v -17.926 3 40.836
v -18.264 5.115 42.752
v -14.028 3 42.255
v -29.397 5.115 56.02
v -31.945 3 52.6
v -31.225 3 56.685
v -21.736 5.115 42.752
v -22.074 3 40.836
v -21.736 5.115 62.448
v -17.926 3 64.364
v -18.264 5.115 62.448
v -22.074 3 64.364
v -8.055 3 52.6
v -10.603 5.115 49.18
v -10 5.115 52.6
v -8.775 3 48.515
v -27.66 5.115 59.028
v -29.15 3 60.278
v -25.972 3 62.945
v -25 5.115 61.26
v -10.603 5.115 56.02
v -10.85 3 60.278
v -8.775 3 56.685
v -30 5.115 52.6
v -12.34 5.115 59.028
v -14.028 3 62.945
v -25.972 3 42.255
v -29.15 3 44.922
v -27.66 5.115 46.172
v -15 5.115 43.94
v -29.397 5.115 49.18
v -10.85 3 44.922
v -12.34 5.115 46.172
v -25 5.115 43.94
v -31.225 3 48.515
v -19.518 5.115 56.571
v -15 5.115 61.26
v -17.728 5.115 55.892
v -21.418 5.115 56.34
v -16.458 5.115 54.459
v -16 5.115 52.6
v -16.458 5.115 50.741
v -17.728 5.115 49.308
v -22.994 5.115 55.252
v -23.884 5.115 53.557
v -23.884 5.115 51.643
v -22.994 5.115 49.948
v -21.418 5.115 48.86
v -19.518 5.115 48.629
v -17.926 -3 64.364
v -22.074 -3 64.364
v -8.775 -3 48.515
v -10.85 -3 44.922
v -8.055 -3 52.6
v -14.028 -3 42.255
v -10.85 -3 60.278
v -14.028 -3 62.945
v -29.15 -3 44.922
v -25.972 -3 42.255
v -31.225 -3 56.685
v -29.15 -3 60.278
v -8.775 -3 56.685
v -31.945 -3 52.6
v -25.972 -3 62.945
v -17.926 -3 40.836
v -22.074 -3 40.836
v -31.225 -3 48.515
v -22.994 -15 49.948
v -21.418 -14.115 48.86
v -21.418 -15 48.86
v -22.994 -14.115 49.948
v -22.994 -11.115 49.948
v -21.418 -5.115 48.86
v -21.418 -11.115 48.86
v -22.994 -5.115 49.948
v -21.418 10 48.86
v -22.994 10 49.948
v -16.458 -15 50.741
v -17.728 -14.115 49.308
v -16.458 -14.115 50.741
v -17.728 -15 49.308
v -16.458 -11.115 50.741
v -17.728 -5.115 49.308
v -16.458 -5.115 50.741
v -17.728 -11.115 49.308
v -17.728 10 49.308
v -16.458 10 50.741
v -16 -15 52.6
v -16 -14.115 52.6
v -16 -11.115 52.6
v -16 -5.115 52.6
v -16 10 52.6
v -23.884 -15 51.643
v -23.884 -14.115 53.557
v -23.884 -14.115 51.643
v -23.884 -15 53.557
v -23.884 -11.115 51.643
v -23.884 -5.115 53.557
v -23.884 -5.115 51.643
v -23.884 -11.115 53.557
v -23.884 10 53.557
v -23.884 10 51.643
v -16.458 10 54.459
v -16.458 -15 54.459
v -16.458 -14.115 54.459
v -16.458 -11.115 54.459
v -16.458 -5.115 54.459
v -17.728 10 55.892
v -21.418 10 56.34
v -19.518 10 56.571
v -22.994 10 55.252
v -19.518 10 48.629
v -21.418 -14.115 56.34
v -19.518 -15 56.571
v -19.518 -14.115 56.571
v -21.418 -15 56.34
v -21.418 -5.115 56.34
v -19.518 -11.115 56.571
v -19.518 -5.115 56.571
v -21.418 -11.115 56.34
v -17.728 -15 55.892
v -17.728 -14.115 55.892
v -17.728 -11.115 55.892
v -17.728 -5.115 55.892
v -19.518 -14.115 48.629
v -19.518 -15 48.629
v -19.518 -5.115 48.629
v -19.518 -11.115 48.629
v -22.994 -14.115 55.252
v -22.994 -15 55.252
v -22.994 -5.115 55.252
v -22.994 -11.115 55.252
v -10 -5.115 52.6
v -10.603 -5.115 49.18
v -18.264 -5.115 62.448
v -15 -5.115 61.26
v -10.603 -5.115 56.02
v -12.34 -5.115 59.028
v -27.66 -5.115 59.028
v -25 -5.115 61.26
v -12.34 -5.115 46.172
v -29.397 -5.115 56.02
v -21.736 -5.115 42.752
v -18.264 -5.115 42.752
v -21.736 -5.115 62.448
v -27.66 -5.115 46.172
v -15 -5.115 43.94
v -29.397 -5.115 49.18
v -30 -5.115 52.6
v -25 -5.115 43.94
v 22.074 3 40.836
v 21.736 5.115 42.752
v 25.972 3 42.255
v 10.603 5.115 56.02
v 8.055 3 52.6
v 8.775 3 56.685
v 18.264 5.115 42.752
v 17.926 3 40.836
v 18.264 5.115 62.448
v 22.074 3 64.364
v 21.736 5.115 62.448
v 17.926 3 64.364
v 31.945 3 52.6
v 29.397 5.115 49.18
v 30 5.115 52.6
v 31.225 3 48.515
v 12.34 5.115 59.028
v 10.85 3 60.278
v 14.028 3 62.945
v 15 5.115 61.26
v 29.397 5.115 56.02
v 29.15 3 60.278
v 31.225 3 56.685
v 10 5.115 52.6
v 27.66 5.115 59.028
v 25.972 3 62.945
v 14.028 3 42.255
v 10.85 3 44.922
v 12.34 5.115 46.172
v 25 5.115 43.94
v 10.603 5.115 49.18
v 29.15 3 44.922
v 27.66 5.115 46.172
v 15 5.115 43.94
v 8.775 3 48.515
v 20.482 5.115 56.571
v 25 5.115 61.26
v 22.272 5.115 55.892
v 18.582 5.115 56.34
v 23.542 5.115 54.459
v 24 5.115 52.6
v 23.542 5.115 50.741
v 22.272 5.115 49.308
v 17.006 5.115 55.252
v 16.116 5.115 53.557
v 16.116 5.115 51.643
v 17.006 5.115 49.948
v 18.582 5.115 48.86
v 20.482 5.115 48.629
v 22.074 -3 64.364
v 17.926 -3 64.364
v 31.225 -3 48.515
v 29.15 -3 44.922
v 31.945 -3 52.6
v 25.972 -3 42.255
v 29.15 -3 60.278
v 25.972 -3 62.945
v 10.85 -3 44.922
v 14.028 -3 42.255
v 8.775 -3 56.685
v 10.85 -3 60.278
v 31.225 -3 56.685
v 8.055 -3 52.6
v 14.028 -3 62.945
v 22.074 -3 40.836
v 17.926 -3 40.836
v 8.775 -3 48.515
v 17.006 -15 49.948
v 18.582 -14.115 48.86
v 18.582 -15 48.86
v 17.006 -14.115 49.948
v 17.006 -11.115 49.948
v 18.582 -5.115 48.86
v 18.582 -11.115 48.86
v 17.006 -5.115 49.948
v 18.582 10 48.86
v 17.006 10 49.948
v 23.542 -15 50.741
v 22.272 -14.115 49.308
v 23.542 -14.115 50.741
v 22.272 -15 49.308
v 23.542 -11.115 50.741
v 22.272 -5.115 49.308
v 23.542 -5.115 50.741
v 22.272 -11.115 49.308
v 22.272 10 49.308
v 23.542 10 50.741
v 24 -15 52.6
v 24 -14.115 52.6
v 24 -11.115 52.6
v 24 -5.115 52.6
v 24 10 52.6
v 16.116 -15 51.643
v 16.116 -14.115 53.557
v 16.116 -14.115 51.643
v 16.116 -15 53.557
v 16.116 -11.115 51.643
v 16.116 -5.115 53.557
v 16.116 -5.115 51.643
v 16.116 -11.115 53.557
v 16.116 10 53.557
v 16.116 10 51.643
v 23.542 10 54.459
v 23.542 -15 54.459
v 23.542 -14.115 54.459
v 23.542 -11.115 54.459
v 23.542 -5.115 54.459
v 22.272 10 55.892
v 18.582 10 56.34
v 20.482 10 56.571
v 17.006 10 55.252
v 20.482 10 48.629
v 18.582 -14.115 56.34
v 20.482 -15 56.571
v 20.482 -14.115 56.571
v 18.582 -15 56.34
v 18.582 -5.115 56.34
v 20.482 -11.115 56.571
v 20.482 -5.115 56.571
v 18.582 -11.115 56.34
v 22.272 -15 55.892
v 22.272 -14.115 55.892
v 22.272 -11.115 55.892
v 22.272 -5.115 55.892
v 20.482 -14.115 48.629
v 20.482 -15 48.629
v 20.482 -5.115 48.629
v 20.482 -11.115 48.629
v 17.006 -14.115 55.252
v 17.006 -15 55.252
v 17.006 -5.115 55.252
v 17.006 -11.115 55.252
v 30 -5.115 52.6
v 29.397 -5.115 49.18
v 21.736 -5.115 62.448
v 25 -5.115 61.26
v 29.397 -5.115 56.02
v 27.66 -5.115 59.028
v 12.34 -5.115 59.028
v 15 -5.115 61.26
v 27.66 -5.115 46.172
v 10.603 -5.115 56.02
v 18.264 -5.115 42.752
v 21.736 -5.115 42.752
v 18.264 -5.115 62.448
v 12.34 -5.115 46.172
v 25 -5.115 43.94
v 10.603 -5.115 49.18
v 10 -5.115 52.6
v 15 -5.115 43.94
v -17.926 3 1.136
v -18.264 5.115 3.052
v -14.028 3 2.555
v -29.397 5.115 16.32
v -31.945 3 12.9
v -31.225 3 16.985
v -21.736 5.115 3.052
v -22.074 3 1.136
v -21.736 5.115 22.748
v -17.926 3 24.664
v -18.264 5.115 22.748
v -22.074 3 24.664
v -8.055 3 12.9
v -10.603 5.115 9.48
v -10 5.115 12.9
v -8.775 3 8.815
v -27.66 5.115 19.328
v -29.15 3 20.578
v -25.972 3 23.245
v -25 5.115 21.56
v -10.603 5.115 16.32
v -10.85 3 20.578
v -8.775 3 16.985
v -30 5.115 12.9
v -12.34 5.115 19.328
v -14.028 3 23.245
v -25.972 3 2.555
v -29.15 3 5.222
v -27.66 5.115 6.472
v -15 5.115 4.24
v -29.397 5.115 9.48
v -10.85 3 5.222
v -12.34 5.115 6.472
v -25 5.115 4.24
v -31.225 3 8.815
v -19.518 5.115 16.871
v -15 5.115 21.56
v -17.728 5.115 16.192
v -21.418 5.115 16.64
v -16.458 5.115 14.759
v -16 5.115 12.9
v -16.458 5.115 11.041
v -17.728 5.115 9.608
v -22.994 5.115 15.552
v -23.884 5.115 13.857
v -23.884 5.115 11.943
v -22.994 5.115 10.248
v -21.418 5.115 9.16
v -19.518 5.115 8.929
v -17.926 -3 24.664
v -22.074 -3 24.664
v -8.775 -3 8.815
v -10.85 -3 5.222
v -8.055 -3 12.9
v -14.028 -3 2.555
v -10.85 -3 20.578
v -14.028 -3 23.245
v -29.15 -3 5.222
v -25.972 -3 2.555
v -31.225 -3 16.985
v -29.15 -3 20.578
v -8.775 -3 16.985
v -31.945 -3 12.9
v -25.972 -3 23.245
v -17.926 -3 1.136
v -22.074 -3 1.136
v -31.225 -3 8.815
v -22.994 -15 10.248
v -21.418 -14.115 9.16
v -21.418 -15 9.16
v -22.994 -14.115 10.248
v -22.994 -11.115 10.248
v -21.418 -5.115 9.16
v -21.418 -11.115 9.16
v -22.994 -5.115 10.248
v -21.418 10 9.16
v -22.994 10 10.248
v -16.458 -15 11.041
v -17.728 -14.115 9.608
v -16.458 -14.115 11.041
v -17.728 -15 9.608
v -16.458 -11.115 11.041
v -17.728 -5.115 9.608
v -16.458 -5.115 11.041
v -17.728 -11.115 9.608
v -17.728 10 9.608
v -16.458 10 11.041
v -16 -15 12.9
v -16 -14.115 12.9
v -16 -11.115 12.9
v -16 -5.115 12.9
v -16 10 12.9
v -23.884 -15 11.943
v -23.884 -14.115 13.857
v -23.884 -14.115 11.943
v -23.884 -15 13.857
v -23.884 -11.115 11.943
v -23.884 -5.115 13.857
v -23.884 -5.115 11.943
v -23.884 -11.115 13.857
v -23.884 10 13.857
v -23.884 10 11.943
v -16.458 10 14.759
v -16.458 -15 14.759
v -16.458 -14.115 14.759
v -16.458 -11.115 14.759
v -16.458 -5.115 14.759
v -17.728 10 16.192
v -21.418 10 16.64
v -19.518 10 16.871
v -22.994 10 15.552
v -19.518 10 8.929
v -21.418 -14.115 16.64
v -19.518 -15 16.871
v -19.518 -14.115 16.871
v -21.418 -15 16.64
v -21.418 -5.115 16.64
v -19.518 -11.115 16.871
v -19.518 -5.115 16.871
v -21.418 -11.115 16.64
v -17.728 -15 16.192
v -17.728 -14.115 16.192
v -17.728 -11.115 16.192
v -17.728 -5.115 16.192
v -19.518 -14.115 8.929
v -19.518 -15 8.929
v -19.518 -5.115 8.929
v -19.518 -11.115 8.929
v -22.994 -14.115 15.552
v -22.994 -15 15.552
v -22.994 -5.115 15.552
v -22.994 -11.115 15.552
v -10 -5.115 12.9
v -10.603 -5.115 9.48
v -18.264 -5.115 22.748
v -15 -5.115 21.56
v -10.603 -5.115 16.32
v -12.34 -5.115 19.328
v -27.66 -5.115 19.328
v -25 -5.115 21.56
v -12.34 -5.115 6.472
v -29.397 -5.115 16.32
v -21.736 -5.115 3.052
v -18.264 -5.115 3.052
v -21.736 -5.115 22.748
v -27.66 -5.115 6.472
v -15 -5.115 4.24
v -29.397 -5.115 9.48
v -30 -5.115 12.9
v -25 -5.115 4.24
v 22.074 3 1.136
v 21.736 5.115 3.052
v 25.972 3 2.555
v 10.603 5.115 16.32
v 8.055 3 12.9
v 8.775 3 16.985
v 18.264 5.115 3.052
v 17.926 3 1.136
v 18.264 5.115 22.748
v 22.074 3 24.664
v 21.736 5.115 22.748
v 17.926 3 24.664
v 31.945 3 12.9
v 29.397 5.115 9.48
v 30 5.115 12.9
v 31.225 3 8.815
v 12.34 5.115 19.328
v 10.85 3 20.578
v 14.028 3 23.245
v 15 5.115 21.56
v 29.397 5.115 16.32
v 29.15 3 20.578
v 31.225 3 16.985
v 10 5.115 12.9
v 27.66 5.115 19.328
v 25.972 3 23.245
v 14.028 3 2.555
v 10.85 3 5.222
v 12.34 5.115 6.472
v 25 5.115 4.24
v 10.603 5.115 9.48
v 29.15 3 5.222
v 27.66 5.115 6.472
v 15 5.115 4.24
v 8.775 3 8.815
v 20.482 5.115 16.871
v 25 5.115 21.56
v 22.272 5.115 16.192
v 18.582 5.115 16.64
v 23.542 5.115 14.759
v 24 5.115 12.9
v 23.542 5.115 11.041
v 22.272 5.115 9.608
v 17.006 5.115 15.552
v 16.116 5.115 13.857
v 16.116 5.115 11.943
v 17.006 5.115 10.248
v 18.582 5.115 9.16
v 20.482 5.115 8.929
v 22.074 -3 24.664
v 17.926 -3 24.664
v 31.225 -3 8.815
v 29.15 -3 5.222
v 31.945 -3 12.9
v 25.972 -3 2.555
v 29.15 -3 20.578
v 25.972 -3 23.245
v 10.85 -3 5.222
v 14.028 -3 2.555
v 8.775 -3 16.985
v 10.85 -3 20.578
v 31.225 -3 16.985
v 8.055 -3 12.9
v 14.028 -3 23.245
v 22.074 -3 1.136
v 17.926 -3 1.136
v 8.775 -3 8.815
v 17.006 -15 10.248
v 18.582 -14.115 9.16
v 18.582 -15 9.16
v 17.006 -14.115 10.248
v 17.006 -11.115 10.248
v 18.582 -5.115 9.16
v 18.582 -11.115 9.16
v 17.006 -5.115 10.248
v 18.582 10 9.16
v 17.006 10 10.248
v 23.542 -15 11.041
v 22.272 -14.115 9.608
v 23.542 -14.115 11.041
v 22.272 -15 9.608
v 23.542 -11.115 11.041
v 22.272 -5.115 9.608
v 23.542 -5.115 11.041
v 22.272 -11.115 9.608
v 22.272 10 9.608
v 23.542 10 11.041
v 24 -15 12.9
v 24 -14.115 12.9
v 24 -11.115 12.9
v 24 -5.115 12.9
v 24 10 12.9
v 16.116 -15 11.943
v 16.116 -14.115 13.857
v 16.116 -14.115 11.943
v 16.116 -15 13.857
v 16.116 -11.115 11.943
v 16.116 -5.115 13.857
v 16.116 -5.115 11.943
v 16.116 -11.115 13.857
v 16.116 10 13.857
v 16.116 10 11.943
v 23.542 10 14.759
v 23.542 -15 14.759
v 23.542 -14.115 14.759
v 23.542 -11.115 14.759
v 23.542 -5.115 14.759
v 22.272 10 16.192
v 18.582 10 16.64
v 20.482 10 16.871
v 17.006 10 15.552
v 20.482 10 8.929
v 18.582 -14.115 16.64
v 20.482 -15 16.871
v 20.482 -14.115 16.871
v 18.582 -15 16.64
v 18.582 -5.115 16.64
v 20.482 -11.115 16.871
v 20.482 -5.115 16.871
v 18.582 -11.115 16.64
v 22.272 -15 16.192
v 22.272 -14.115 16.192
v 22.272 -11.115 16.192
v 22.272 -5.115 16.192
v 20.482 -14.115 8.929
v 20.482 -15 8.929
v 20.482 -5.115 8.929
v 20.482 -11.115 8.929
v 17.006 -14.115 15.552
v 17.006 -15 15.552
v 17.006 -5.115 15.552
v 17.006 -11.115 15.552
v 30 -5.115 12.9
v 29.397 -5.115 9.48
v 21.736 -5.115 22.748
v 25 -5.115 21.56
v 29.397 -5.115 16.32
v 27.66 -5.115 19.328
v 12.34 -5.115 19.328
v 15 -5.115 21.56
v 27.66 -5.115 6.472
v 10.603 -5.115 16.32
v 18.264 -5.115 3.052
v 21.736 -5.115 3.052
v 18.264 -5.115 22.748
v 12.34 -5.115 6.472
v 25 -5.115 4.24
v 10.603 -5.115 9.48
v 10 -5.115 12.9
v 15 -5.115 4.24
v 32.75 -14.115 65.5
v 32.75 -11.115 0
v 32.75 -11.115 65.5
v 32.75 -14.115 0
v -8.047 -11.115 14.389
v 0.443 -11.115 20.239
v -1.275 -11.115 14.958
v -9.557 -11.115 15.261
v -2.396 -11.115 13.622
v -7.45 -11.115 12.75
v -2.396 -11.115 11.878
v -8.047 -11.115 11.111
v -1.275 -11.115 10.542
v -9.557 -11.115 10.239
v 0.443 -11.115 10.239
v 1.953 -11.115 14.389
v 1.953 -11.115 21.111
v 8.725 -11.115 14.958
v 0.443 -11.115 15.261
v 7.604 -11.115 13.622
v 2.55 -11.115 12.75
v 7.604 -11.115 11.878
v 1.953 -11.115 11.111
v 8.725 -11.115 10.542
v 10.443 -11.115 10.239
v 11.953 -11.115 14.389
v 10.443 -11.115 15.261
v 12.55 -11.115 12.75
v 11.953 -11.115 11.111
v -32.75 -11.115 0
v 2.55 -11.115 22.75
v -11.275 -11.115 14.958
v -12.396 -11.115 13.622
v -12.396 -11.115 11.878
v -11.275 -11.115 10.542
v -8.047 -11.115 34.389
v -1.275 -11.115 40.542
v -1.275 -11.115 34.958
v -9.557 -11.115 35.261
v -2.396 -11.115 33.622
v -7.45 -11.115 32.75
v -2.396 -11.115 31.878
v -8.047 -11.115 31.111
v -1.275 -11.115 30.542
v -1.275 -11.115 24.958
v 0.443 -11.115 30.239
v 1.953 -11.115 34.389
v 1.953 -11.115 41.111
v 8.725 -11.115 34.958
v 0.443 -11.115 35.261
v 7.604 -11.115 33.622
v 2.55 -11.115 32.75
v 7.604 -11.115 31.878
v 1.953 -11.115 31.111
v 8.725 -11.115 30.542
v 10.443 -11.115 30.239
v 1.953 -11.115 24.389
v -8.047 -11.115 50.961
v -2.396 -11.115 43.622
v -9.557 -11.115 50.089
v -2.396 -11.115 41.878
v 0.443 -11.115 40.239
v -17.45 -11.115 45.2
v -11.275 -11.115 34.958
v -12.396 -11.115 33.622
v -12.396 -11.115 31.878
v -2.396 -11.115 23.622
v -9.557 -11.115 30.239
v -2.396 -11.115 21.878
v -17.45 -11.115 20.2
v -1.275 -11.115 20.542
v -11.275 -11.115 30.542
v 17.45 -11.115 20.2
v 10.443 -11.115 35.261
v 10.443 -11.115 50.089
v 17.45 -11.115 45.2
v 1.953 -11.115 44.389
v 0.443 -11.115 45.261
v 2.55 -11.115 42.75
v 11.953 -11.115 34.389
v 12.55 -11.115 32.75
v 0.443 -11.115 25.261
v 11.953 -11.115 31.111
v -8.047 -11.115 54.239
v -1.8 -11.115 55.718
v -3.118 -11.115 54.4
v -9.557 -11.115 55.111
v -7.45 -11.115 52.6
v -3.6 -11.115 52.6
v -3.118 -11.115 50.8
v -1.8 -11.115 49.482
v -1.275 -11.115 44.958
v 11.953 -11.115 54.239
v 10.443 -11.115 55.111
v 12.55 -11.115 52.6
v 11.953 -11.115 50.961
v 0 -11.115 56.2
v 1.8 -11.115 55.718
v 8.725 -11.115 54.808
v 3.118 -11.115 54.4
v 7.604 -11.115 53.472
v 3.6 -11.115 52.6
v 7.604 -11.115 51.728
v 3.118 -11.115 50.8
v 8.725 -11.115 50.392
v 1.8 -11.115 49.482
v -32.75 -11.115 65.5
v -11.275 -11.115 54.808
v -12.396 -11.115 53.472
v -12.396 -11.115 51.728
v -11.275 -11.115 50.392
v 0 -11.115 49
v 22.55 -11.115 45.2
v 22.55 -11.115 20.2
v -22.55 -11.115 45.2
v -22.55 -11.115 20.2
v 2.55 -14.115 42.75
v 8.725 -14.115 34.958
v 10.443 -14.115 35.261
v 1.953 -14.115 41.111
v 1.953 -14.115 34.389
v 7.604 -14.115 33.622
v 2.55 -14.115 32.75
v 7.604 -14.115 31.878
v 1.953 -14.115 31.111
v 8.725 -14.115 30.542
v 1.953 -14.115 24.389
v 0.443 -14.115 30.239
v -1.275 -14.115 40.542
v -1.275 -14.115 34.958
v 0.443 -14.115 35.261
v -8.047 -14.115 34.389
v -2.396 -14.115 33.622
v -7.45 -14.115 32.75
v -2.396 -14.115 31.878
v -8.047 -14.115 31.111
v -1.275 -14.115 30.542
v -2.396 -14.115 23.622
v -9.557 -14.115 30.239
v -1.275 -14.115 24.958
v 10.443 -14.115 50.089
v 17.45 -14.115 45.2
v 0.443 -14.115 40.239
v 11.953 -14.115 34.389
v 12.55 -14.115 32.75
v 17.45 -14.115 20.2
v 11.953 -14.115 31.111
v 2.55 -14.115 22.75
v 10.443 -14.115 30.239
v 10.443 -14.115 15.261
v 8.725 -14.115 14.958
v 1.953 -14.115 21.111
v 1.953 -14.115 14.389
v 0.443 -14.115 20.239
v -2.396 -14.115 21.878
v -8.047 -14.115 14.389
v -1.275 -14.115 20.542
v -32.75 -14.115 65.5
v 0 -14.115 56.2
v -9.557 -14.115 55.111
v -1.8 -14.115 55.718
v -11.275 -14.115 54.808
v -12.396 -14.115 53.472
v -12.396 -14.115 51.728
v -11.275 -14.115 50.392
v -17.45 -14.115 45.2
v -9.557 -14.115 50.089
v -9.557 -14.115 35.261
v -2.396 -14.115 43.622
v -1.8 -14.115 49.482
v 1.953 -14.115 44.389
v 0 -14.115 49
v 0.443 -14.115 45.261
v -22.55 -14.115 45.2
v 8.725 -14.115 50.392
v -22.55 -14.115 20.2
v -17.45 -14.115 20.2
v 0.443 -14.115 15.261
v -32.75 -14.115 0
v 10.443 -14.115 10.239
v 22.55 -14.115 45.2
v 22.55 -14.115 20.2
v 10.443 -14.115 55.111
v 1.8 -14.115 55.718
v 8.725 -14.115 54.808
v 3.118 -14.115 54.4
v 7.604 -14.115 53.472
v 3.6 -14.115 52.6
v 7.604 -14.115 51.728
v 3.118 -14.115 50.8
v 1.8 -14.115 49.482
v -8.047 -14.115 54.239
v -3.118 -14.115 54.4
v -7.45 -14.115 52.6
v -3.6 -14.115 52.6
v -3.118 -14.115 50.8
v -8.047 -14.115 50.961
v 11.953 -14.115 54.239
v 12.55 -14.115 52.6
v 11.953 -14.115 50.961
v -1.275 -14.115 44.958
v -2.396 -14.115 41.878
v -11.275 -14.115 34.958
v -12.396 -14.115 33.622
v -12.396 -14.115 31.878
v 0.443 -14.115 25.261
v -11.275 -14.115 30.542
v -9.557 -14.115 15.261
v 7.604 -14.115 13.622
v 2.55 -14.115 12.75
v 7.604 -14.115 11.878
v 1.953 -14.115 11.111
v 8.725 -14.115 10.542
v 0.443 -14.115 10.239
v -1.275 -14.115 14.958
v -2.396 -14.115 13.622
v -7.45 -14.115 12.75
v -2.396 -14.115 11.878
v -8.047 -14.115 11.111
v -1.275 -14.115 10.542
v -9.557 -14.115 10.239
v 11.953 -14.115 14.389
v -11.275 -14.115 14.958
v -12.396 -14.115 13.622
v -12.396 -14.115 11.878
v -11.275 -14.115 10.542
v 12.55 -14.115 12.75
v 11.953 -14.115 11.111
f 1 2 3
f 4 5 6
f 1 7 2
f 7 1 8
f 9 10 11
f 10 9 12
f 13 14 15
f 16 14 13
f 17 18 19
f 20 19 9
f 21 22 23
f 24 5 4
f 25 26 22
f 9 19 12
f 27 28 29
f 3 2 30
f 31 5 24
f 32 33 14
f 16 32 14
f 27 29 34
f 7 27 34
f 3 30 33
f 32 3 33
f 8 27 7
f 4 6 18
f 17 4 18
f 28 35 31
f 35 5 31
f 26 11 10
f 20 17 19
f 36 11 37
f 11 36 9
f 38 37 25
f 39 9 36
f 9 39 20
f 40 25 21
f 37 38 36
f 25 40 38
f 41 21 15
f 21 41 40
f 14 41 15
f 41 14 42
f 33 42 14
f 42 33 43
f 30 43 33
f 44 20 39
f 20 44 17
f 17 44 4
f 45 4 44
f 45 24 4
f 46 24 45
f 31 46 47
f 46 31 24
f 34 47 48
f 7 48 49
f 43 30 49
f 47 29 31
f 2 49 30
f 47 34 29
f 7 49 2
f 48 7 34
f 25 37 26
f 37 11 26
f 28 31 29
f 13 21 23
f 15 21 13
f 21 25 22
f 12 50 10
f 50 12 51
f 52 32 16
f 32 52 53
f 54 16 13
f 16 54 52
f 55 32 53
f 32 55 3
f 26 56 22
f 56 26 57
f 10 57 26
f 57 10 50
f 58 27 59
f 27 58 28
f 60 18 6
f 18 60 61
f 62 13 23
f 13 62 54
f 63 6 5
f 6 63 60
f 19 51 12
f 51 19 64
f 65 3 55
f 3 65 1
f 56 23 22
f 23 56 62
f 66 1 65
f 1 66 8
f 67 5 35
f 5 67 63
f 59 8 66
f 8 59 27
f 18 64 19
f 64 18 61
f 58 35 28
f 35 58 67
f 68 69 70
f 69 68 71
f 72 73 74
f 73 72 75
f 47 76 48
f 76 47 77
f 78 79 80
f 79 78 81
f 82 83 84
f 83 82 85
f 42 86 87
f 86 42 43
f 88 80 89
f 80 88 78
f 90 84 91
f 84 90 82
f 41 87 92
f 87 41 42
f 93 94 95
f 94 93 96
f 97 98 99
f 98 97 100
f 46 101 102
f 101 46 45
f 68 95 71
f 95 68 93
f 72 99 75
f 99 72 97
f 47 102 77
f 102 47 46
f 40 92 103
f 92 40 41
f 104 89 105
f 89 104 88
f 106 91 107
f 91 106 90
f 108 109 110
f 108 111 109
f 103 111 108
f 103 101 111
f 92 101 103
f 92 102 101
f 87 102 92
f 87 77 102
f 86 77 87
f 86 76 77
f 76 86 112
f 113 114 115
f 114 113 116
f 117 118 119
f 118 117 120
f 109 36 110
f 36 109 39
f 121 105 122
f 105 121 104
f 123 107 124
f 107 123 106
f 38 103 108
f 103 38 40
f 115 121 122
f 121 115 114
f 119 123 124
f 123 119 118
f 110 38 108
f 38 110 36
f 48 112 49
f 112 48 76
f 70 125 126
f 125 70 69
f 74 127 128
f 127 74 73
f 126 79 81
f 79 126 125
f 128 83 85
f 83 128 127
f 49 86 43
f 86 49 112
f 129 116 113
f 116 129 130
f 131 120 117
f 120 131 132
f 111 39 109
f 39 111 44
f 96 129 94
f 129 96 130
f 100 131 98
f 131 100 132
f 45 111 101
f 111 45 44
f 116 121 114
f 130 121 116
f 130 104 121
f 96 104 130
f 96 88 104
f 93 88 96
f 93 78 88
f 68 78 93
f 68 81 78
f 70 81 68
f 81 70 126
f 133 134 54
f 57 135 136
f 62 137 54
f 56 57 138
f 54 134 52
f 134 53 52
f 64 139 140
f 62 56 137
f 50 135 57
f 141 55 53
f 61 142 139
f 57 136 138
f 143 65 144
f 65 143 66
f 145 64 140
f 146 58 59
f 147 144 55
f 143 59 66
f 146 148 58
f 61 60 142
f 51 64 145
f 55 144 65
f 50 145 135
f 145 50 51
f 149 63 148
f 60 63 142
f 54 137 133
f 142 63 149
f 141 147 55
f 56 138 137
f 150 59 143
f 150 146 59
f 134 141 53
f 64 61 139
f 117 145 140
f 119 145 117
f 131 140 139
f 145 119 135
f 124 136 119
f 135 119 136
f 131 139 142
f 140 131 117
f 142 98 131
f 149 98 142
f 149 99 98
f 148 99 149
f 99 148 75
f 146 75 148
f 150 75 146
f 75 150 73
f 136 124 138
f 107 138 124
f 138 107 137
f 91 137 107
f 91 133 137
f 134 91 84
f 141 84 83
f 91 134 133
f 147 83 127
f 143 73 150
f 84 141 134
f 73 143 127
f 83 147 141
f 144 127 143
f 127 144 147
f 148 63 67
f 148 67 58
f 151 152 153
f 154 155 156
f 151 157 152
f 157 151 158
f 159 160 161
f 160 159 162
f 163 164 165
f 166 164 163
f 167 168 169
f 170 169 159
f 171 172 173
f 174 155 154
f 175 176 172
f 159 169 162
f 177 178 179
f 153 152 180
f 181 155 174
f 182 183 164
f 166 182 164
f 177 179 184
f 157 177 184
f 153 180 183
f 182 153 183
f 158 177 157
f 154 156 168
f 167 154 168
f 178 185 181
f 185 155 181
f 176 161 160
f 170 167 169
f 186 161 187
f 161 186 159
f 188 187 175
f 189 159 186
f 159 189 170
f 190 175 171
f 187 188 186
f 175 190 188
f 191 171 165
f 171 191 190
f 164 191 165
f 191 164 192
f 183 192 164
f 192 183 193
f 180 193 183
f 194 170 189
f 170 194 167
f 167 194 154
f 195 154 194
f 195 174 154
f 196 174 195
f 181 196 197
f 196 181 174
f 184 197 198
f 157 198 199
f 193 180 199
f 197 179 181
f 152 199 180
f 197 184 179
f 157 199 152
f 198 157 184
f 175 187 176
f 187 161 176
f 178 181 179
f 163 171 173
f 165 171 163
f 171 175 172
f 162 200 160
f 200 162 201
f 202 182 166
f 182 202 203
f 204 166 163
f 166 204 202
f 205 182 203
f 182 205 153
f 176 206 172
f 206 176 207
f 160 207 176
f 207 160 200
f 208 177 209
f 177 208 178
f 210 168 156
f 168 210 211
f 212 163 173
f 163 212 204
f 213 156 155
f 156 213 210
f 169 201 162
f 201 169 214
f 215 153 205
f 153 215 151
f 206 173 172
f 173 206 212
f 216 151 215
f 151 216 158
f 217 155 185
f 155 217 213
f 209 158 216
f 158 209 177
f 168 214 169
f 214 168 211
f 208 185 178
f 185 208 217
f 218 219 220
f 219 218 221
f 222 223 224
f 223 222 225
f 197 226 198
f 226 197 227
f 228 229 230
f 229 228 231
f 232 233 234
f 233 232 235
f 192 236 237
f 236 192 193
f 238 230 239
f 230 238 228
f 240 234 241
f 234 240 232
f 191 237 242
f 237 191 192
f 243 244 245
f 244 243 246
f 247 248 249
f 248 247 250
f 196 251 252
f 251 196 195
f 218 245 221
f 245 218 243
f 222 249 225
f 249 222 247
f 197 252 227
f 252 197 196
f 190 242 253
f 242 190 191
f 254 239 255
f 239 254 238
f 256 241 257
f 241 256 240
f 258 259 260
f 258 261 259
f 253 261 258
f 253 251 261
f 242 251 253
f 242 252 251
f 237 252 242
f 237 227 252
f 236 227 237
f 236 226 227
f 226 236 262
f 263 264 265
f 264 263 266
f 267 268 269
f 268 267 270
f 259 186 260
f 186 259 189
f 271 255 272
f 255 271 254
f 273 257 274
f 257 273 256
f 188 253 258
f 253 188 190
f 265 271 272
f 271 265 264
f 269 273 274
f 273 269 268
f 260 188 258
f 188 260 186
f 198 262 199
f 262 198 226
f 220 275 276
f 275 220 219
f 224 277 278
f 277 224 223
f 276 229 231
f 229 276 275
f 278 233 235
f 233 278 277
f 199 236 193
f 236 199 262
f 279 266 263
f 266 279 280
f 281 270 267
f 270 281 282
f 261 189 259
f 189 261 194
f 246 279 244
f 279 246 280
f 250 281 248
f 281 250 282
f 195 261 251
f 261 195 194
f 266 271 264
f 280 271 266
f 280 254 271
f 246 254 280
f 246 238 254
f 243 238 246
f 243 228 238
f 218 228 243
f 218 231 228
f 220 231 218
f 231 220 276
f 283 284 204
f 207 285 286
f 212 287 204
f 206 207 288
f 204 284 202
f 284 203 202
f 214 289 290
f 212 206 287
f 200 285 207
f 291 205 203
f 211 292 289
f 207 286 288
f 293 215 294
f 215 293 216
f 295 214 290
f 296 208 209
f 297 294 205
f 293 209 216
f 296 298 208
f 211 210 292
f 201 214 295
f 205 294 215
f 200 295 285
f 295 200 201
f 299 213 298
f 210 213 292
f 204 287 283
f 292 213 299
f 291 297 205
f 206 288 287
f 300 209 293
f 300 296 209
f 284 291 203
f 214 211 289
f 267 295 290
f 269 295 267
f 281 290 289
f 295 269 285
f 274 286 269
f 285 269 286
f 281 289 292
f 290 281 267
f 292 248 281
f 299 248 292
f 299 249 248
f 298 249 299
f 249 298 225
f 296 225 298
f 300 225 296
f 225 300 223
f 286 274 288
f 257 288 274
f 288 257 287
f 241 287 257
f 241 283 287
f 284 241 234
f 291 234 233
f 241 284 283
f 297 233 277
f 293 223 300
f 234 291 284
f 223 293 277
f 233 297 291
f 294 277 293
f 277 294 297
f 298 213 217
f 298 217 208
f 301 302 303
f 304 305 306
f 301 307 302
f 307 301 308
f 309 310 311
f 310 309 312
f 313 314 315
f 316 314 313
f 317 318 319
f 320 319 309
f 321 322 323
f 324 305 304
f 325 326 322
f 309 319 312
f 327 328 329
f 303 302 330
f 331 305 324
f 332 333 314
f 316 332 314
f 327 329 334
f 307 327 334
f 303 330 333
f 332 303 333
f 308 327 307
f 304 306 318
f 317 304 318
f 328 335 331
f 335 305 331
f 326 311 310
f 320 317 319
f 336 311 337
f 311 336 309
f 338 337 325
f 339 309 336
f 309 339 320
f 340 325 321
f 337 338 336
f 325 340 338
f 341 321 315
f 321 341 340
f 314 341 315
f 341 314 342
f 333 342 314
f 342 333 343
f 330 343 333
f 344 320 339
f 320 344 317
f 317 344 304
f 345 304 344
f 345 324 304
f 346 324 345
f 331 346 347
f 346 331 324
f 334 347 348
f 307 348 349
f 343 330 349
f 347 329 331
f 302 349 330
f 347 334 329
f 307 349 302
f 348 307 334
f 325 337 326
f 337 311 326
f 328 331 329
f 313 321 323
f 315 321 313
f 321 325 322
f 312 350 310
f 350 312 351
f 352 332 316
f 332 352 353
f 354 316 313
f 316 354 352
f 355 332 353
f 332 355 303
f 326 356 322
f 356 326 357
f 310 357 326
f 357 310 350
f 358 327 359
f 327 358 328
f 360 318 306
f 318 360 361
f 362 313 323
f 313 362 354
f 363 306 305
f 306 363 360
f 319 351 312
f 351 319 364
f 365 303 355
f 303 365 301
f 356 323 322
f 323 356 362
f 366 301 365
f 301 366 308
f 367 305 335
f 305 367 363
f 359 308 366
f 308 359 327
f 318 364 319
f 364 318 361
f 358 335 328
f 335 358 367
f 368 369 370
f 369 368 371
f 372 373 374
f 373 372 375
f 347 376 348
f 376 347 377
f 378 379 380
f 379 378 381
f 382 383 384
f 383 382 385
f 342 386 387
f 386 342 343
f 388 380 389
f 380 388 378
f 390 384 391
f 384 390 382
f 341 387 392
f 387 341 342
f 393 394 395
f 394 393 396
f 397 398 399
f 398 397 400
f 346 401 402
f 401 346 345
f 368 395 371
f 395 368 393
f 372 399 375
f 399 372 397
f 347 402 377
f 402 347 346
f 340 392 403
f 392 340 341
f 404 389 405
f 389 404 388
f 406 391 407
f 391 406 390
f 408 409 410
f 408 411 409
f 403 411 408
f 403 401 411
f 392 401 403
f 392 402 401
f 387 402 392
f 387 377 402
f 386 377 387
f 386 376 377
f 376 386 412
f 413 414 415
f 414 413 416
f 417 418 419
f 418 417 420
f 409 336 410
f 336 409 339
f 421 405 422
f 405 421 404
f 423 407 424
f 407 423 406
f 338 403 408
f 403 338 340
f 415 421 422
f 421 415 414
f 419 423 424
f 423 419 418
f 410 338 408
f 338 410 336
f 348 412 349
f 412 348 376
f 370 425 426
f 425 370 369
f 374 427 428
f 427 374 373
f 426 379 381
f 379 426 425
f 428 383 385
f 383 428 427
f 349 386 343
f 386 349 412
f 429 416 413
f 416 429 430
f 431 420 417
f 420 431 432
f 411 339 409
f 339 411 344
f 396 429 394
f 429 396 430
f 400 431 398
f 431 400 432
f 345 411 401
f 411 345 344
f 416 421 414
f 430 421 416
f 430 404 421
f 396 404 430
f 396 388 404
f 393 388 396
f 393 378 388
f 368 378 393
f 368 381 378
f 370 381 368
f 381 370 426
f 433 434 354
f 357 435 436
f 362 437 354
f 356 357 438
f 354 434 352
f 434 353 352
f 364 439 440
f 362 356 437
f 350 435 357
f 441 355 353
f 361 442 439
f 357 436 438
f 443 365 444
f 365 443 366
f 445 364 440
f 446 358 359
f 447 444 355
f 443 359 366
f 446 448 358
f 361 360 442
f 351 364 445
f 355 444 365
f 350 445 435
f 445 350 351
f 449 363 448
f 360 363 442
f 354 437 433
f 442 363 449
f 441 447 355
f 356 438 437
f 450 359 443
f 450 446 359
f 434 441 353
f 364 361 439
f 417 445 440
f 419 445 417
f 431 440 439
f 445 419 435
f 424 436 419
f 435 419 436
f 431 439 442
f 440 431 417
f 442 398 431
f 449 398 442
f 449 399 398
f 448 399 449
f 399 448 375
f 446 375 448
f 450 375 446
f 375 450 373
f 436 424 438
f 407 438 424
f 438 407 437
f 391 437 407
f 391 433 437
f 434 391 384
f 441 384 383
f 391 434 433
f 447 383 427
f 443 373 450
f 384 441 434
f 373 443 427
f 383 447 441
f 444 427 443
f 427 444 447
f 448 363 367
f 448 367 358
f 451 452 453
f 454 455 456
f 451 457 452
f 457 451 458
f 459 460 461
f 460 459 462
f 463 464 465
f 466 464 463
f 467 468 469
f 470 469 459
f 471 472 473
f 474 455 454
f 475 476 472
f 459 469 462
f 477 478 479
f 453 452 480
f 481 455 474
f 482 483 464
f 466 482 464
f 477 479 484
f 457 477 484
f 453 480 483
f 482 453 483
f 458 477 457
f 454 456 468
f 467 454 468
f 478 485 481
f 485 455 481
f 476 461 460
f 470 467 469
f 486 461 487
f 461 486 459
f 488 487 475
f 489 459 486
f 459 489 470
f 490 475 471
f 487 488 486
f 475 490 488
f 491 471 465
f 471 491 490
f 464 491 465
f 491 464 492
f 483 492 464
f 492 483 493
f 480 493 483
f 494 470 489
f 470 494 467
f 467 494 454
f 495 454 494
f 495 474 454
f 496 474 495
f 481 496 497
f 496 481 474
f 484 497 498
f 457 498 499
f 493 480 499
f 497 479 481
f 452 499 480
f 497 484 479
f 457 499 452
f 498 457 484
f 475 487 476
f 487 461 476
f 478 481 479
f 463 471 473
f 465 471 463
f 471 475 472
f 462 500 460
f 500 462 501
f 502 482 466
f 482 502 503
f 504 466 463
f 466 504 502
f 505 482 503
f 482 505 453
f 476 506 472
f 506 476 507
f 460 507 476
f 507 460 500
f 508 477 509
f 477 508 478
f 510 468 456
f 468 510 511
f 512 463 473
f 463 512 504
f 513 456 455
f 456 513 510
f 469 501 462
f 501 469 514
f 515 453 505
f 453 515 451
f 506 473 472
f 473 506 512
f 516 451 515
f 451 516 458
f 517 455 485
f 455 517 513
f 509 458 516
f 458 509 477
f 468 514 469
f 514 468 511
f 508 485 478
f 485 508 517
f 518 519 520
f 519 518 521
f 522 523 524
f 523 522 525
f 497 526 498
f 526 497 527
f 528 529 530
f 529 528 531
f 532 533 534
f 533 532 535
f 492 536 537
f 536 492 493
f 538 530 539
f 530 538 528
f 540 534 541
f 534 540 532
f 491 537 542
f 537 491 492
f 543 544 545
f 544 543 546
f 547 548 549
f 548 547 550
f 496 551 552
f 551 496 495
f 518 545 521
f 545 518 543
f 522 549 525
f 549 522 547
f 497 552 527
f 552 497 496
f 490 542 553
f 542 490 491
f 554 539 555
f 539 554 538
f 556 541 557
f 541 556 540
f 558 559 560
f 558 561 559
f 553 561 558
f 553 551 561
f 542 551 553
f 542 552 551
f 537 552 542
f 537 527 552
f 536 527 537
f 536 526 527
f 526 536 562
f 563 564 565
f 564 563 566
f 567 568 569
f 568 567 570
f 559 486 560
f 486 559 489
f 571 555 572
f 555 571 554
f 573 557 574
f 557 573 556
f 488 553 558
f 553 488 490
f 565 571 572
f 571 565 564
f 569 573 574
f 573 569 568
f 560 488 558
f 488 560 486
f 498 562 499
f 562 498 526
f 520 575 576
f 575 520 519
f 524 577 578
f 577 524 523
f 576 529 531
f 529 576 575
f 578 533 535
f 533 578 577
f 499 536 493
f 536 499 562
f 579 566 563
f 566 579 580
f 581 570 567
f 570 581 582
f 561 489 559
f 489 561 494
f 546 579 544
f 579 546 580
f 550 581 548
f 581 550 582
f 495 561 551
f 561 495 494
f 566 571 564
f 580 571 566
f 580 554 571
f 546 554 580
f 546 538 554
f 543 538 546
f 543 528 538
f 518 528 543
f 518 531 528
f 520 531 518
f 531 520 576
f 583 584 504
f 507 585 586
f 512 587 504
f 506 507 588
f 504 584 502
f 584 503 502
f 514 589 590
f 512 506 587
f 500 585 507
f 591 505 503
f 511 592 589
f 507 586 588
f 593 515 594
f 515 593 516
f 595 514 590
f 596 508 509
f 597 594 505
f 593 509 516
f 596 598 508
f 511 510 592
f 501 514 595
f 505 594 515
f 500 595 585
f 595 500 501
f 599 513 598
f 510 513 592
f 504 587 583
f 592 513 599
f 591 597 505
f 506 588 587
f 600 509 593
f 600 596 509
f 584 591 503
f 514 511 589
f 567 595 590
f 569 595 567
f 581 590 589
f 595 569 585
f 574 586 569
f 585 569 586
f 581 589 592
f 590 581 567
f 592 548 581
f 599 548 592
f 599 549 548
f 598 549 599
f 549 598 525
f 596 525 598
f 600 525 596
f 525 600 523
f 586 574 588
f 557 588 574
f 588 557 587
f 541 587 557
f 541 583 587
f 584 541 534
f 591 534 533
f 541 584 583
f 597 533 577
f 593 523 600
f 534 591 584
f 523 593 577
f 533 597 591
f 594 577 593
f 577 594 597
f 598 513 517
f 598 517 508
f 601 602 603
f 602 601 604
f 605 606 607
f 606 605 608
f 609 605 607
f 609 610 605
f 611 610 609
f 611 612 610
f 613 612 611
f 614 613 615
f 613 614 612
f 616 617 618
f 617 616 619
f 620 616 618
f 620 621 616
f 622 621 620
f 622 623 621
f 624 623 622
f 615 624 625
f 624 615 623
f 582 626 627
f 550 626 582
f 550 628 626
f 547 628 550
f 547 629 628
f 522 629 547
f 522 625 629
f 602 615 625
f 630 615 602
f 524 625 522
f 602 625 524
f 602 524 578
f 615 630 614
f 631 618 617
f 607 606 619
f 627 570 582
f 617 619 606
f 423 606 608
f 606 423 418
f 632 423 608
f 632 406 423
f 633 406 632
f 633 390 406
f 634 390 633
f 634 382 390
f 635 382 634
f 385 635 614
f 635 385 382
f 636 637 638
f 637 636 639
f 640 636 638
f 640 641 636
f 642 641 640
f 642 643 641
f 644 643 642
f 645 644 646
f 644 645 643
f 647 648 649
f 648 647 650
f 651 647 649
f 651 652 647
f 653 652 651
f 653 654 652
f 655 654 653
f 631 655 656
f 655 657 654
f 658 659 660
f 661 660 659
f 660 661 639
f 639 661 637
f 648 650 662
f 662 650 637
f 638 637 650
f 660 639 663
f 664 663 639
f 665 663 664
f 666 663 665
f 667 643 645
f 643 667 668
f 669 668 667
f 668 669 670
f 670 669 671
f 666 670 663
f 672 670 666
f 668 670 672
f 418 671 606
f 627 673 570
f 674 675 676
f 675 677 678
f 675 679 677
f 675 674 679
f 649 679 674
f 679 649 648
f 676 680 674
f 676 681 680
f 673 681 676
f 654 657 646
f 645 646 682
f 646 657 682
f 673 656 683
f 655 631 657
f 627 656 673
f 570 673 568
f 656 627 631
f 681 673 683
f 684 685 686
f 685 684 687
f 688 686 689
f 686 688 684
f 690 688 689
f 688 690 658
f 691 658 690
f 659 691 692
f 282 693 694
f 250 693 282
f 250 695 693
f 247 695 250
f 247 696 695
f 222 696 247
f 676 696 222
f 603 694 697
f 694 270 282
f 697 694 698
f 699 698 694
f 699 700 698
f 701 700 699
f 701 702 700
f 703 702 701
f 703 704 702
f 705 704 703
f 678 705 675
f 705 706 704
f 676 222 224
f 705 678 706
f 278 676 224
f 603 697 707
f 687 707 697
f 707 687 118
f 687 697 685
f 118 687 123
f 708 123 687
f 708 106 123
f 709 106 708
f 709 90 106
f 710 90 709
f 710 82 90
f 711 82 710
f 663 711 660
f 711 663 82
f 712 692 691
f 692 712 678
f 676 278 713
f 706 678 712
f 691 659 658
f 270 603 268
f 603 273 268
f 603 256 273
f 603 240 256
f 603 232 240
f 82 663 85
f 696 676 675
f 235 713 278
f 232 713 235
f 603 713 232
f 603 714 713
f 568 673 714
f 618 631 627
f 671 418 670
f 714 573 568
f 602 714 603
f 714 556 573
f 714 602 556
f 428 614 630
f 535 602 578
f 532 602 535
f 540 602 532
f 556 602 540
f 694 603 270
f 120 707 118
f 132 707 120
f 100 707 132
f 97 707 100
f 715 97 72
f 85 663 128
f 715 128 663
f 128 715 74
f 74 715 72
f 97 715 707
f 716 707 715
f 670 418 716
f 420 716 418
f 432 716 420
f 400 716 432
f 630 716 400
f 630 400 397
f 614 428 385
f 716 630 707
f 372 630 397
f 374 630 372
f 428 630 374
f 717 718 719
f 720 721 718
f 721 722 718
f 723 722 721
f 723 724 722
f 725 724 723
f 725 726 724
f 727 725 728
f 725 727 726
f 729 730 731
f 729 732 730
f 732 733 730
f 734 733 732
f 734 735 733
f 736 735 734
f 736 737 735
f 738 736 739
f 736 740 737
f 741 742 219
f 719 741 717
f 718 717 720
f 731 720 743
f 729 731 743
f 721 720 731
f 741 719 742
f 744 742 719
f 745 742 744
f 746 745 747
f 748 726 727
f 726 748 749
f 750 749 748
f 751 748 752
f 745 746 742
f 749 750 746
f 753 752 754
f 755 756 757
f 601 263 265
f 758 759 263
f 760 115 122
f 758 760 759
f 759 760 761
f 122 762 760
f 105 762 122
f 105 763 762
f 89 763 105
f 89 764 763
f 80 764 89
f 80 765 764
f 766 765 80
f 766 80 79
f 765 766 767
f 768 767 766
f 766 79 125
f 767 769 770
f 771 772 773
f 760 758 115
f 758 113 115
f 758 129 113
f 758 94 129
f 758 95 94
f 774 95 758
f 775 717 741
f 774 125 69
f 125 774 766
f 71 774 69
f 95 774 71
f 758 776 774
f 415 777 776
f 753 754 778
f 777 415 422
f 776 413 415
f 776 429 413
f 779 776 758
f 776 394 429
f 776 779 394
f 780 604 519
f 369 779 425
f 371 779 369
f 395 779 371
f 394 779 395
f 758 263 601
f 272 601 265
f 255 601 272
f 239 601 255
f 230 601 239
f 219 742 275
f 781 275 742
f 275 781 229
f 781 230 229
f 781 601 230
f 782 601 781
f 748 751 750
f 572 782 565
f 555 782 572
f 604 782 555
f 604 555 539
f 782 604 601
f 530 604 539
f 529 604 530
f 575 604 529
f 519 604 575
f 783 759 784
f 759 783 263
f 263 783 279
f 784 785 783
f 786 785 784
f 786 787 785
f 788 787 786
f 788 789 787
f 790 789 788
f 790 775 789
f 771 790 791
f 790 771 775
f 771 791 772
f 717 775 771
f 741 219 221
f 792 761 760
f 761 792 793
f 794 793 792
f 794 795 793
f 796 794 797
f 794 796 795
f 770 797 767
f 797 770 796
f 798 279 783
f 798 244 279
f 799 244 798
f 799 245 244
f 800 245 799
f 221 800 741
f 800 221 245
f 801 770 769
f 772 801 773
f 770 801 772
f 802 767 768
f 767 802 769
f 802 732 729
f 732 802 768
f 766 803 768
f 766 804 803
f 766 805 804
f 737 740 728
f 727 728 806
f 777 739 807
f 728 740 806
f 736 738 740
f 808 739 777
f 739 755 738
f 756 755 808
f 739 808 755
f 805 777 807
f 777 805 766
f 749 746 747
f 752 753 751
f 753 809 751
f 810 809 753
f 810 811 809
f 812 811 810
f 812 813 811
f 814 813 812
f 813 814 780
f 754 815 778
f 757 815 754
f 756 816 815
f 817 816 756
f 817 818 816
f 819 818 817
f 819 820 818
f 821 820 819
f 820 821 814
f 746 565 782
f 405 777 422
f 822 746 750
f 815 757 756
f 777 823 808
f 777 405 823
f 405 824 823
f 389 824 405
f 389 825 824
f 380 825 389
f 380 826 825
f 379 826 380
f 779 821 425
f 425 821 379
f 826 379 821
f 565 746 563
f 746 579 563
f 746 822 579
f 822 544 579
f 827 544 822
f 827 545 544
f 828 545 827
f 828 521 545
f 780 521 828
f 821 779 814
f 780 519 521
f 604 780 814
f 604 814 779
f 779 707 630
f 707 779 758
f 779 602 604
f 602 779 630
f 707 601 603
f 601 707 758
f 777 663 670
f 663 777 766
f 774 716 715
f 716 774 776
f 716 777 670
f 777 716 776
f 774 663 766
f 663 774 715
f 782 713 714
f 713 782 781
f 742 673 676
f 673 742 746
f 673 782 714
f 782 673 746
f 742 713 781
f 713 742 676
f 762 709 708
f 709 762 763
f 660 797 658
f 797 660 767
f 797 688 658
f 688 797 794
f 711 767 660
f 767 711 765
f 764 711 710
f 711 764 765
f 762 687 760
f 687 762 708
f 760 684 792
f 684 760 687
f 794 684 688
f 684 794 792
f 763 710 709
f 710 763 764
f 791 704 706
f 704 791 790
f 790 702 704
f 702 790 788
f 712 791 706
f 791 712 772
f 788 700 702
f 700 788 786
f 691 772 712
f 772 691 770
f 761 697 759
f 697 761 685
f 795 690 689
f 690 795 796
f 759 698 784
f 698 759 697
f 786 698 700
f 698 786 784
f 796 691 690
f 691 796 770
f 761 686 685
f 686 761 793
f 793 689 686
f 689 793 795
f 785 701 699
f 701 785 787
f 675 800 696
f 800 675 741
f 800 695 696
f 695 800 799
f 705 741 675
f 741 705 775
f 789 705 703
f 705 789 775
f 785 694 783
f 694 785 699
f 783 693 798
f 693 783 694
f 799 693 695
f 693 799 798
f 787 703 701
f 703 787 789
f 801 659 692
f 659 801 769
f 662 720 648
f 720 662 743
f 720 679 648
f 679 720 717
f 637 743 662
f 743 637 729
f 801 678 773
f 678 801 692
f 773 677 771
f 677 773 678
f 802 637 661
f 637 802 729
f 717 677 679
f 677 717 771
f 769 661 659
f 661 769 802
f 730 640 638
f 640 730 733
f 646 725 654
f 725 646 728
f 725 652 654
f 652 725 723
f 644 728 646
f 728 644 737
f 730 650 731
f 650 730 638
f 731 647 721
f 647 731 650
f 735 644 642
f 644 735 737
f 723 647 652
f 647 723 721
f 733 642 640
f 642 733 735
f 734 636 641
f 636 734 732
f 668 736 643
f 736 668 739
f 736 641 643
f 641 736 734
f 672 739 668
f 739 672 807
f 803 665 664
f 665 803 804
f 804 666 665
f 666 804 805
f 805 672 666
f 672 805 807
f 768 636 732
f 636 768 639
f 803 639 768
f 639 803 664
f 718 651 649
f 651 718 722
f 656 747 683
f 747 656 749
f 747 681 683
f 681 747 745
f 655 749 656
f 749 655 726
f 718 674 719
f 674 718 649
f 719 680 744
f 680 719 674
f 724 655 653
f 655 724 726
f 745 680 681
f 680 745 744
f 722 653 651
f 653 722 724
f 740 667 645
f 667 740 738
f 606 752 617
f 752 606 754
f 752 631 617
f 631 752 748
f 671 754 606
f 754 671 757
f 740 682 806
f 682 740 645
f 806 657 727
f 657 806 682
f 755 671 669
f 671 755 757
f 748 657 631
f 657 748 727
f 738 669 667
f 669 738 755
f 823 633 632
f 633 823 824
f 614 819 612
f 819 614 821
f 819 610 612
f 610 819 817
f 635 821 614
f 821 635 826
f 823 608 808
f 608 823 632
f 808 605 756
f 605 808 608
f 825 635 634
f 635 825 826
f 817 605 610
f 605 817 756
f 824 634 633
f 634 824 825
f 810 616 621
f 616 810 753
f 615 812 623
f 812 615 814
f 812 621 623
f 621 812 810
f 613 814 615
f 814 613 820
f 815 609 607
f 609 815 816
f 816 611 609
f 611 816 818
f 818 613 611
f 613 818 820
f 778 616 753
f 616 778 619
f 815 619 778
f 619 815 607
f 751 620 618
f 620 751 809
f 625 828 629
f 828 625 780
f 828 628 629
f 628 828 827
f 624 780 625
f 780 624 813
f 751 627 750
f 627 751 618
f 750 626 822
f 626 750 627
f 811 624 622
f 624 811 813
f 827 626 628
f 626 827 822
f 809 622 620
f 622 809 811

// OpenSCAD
v_slot_kit();
//V-slot组合体
module v_slot_kit(){
    translate([-65.5/2,-(10.23/2+9),65.5]){
 rotate([-90,0,0]){
  v_slot_plate();  
  translate([12.75,12.90,10.23/2+9]){
      v_slot_wheel();
      }  
    translate([52.75,12.90,10.23/2+9]){
      v_slot_wheel();
      }
     translate([12.75,52.60,10.23/2+9 ]){
      v_slot_wheel();
      }  
    translate([52.75,52.60,10.23/2+9]){
      v_slot_wheel();
 }    
}
    }}


//单个轮子
module v_slot_wheel(){
translate([0,0,3]){
cylinder($fn = 0, $fa = 20, $fs = 2, h = 2.115, r1 = 23.89/2, r2 = 10, center = false);}

translate([0,0,-3]){
cylinder($fn = 0, $fa =20,$fs = 2, h = 6, r1 = 23.89/2, r2 = 23.89/2, center = false);}

translate([0,0,-15]){
cylinder($fn = 0, $fa =20,$fs = 2, h = 25, r1 = 4, r2 =4, center = false);}

mirror([0,0,1]){
translate([0,0,3]){
cylinder($fn = 0, $fa =20, $fs = 2, h = 2.115, r1 = 23.89/2, r2 = 10, center = false);}
    }
}

//滑轮片

module v_slot_plate(){
 difference(){
    cube([65.5,65.5,3]);

//长条形大孔
translate([12.75-5.1/2,(65.6-25)/2,-1]){
    cube([5.1,25,10]);
    }
translate([52.75-5.1/2,(65.6-25)/2,-1]){
    cube([5.1,25,10]);
    }

//左侧大孔
translate([12.75,12.90,0]){
    cylinder(h=10,r=3.6,center=true);
    }
translate([ 22.75,12.90,0]){
    cylinder(h=10,r=2.55,center=true);
    }
translate([ 32.75,12.90,0]){
    cylinder(h=10,r=3.6,center=true);
    }
translate([ 42.75,12.90,0]){
    cylinder(h=10,r=2.55,center=true);
    }
translate([  52.75,12.90,0]){
    cylinder(h=10,r=3.6,center=true);
    }
    
//中间5个孔
translate([32.75,22.75,0]){
    cylinder(h=10,r=2.55,center=true);
    } 
translate([32.75,32.75,0]){
    cylinder(h=10,r=2.55,center=true);
    }

translate([22.75,32.75,0]){
    cylinder(h=10,r=2.55,center=true);
    }
translate([42.75,32.75,0]){
    cylinder(h=10,r=2.55,center=true);
    }

translate([32.75,42.75,0]){
    cylinder(h=10,r=2.55,center=true);
    }    
    
  //右侧5个孔  
translate([12.75,52.75,0]){
    cylinder(h=10,r=2.55,center=true);
    }
translate([ 22.75,52.75,0]){
    cylinder(h=10,r=2.55,center=true);
    }
translate([ 32.75,52.75,0]){
    cylinder(h=10,r=2.55,center=true);
    }
translate([ 42.75,52.75,0]){
    cylinder(h=10,r=2.55,center=true);
    }
translate([ 52.75,52.75,0]){
    cylinder(h=10,r=2.55,center=true);
    }
    }
}
